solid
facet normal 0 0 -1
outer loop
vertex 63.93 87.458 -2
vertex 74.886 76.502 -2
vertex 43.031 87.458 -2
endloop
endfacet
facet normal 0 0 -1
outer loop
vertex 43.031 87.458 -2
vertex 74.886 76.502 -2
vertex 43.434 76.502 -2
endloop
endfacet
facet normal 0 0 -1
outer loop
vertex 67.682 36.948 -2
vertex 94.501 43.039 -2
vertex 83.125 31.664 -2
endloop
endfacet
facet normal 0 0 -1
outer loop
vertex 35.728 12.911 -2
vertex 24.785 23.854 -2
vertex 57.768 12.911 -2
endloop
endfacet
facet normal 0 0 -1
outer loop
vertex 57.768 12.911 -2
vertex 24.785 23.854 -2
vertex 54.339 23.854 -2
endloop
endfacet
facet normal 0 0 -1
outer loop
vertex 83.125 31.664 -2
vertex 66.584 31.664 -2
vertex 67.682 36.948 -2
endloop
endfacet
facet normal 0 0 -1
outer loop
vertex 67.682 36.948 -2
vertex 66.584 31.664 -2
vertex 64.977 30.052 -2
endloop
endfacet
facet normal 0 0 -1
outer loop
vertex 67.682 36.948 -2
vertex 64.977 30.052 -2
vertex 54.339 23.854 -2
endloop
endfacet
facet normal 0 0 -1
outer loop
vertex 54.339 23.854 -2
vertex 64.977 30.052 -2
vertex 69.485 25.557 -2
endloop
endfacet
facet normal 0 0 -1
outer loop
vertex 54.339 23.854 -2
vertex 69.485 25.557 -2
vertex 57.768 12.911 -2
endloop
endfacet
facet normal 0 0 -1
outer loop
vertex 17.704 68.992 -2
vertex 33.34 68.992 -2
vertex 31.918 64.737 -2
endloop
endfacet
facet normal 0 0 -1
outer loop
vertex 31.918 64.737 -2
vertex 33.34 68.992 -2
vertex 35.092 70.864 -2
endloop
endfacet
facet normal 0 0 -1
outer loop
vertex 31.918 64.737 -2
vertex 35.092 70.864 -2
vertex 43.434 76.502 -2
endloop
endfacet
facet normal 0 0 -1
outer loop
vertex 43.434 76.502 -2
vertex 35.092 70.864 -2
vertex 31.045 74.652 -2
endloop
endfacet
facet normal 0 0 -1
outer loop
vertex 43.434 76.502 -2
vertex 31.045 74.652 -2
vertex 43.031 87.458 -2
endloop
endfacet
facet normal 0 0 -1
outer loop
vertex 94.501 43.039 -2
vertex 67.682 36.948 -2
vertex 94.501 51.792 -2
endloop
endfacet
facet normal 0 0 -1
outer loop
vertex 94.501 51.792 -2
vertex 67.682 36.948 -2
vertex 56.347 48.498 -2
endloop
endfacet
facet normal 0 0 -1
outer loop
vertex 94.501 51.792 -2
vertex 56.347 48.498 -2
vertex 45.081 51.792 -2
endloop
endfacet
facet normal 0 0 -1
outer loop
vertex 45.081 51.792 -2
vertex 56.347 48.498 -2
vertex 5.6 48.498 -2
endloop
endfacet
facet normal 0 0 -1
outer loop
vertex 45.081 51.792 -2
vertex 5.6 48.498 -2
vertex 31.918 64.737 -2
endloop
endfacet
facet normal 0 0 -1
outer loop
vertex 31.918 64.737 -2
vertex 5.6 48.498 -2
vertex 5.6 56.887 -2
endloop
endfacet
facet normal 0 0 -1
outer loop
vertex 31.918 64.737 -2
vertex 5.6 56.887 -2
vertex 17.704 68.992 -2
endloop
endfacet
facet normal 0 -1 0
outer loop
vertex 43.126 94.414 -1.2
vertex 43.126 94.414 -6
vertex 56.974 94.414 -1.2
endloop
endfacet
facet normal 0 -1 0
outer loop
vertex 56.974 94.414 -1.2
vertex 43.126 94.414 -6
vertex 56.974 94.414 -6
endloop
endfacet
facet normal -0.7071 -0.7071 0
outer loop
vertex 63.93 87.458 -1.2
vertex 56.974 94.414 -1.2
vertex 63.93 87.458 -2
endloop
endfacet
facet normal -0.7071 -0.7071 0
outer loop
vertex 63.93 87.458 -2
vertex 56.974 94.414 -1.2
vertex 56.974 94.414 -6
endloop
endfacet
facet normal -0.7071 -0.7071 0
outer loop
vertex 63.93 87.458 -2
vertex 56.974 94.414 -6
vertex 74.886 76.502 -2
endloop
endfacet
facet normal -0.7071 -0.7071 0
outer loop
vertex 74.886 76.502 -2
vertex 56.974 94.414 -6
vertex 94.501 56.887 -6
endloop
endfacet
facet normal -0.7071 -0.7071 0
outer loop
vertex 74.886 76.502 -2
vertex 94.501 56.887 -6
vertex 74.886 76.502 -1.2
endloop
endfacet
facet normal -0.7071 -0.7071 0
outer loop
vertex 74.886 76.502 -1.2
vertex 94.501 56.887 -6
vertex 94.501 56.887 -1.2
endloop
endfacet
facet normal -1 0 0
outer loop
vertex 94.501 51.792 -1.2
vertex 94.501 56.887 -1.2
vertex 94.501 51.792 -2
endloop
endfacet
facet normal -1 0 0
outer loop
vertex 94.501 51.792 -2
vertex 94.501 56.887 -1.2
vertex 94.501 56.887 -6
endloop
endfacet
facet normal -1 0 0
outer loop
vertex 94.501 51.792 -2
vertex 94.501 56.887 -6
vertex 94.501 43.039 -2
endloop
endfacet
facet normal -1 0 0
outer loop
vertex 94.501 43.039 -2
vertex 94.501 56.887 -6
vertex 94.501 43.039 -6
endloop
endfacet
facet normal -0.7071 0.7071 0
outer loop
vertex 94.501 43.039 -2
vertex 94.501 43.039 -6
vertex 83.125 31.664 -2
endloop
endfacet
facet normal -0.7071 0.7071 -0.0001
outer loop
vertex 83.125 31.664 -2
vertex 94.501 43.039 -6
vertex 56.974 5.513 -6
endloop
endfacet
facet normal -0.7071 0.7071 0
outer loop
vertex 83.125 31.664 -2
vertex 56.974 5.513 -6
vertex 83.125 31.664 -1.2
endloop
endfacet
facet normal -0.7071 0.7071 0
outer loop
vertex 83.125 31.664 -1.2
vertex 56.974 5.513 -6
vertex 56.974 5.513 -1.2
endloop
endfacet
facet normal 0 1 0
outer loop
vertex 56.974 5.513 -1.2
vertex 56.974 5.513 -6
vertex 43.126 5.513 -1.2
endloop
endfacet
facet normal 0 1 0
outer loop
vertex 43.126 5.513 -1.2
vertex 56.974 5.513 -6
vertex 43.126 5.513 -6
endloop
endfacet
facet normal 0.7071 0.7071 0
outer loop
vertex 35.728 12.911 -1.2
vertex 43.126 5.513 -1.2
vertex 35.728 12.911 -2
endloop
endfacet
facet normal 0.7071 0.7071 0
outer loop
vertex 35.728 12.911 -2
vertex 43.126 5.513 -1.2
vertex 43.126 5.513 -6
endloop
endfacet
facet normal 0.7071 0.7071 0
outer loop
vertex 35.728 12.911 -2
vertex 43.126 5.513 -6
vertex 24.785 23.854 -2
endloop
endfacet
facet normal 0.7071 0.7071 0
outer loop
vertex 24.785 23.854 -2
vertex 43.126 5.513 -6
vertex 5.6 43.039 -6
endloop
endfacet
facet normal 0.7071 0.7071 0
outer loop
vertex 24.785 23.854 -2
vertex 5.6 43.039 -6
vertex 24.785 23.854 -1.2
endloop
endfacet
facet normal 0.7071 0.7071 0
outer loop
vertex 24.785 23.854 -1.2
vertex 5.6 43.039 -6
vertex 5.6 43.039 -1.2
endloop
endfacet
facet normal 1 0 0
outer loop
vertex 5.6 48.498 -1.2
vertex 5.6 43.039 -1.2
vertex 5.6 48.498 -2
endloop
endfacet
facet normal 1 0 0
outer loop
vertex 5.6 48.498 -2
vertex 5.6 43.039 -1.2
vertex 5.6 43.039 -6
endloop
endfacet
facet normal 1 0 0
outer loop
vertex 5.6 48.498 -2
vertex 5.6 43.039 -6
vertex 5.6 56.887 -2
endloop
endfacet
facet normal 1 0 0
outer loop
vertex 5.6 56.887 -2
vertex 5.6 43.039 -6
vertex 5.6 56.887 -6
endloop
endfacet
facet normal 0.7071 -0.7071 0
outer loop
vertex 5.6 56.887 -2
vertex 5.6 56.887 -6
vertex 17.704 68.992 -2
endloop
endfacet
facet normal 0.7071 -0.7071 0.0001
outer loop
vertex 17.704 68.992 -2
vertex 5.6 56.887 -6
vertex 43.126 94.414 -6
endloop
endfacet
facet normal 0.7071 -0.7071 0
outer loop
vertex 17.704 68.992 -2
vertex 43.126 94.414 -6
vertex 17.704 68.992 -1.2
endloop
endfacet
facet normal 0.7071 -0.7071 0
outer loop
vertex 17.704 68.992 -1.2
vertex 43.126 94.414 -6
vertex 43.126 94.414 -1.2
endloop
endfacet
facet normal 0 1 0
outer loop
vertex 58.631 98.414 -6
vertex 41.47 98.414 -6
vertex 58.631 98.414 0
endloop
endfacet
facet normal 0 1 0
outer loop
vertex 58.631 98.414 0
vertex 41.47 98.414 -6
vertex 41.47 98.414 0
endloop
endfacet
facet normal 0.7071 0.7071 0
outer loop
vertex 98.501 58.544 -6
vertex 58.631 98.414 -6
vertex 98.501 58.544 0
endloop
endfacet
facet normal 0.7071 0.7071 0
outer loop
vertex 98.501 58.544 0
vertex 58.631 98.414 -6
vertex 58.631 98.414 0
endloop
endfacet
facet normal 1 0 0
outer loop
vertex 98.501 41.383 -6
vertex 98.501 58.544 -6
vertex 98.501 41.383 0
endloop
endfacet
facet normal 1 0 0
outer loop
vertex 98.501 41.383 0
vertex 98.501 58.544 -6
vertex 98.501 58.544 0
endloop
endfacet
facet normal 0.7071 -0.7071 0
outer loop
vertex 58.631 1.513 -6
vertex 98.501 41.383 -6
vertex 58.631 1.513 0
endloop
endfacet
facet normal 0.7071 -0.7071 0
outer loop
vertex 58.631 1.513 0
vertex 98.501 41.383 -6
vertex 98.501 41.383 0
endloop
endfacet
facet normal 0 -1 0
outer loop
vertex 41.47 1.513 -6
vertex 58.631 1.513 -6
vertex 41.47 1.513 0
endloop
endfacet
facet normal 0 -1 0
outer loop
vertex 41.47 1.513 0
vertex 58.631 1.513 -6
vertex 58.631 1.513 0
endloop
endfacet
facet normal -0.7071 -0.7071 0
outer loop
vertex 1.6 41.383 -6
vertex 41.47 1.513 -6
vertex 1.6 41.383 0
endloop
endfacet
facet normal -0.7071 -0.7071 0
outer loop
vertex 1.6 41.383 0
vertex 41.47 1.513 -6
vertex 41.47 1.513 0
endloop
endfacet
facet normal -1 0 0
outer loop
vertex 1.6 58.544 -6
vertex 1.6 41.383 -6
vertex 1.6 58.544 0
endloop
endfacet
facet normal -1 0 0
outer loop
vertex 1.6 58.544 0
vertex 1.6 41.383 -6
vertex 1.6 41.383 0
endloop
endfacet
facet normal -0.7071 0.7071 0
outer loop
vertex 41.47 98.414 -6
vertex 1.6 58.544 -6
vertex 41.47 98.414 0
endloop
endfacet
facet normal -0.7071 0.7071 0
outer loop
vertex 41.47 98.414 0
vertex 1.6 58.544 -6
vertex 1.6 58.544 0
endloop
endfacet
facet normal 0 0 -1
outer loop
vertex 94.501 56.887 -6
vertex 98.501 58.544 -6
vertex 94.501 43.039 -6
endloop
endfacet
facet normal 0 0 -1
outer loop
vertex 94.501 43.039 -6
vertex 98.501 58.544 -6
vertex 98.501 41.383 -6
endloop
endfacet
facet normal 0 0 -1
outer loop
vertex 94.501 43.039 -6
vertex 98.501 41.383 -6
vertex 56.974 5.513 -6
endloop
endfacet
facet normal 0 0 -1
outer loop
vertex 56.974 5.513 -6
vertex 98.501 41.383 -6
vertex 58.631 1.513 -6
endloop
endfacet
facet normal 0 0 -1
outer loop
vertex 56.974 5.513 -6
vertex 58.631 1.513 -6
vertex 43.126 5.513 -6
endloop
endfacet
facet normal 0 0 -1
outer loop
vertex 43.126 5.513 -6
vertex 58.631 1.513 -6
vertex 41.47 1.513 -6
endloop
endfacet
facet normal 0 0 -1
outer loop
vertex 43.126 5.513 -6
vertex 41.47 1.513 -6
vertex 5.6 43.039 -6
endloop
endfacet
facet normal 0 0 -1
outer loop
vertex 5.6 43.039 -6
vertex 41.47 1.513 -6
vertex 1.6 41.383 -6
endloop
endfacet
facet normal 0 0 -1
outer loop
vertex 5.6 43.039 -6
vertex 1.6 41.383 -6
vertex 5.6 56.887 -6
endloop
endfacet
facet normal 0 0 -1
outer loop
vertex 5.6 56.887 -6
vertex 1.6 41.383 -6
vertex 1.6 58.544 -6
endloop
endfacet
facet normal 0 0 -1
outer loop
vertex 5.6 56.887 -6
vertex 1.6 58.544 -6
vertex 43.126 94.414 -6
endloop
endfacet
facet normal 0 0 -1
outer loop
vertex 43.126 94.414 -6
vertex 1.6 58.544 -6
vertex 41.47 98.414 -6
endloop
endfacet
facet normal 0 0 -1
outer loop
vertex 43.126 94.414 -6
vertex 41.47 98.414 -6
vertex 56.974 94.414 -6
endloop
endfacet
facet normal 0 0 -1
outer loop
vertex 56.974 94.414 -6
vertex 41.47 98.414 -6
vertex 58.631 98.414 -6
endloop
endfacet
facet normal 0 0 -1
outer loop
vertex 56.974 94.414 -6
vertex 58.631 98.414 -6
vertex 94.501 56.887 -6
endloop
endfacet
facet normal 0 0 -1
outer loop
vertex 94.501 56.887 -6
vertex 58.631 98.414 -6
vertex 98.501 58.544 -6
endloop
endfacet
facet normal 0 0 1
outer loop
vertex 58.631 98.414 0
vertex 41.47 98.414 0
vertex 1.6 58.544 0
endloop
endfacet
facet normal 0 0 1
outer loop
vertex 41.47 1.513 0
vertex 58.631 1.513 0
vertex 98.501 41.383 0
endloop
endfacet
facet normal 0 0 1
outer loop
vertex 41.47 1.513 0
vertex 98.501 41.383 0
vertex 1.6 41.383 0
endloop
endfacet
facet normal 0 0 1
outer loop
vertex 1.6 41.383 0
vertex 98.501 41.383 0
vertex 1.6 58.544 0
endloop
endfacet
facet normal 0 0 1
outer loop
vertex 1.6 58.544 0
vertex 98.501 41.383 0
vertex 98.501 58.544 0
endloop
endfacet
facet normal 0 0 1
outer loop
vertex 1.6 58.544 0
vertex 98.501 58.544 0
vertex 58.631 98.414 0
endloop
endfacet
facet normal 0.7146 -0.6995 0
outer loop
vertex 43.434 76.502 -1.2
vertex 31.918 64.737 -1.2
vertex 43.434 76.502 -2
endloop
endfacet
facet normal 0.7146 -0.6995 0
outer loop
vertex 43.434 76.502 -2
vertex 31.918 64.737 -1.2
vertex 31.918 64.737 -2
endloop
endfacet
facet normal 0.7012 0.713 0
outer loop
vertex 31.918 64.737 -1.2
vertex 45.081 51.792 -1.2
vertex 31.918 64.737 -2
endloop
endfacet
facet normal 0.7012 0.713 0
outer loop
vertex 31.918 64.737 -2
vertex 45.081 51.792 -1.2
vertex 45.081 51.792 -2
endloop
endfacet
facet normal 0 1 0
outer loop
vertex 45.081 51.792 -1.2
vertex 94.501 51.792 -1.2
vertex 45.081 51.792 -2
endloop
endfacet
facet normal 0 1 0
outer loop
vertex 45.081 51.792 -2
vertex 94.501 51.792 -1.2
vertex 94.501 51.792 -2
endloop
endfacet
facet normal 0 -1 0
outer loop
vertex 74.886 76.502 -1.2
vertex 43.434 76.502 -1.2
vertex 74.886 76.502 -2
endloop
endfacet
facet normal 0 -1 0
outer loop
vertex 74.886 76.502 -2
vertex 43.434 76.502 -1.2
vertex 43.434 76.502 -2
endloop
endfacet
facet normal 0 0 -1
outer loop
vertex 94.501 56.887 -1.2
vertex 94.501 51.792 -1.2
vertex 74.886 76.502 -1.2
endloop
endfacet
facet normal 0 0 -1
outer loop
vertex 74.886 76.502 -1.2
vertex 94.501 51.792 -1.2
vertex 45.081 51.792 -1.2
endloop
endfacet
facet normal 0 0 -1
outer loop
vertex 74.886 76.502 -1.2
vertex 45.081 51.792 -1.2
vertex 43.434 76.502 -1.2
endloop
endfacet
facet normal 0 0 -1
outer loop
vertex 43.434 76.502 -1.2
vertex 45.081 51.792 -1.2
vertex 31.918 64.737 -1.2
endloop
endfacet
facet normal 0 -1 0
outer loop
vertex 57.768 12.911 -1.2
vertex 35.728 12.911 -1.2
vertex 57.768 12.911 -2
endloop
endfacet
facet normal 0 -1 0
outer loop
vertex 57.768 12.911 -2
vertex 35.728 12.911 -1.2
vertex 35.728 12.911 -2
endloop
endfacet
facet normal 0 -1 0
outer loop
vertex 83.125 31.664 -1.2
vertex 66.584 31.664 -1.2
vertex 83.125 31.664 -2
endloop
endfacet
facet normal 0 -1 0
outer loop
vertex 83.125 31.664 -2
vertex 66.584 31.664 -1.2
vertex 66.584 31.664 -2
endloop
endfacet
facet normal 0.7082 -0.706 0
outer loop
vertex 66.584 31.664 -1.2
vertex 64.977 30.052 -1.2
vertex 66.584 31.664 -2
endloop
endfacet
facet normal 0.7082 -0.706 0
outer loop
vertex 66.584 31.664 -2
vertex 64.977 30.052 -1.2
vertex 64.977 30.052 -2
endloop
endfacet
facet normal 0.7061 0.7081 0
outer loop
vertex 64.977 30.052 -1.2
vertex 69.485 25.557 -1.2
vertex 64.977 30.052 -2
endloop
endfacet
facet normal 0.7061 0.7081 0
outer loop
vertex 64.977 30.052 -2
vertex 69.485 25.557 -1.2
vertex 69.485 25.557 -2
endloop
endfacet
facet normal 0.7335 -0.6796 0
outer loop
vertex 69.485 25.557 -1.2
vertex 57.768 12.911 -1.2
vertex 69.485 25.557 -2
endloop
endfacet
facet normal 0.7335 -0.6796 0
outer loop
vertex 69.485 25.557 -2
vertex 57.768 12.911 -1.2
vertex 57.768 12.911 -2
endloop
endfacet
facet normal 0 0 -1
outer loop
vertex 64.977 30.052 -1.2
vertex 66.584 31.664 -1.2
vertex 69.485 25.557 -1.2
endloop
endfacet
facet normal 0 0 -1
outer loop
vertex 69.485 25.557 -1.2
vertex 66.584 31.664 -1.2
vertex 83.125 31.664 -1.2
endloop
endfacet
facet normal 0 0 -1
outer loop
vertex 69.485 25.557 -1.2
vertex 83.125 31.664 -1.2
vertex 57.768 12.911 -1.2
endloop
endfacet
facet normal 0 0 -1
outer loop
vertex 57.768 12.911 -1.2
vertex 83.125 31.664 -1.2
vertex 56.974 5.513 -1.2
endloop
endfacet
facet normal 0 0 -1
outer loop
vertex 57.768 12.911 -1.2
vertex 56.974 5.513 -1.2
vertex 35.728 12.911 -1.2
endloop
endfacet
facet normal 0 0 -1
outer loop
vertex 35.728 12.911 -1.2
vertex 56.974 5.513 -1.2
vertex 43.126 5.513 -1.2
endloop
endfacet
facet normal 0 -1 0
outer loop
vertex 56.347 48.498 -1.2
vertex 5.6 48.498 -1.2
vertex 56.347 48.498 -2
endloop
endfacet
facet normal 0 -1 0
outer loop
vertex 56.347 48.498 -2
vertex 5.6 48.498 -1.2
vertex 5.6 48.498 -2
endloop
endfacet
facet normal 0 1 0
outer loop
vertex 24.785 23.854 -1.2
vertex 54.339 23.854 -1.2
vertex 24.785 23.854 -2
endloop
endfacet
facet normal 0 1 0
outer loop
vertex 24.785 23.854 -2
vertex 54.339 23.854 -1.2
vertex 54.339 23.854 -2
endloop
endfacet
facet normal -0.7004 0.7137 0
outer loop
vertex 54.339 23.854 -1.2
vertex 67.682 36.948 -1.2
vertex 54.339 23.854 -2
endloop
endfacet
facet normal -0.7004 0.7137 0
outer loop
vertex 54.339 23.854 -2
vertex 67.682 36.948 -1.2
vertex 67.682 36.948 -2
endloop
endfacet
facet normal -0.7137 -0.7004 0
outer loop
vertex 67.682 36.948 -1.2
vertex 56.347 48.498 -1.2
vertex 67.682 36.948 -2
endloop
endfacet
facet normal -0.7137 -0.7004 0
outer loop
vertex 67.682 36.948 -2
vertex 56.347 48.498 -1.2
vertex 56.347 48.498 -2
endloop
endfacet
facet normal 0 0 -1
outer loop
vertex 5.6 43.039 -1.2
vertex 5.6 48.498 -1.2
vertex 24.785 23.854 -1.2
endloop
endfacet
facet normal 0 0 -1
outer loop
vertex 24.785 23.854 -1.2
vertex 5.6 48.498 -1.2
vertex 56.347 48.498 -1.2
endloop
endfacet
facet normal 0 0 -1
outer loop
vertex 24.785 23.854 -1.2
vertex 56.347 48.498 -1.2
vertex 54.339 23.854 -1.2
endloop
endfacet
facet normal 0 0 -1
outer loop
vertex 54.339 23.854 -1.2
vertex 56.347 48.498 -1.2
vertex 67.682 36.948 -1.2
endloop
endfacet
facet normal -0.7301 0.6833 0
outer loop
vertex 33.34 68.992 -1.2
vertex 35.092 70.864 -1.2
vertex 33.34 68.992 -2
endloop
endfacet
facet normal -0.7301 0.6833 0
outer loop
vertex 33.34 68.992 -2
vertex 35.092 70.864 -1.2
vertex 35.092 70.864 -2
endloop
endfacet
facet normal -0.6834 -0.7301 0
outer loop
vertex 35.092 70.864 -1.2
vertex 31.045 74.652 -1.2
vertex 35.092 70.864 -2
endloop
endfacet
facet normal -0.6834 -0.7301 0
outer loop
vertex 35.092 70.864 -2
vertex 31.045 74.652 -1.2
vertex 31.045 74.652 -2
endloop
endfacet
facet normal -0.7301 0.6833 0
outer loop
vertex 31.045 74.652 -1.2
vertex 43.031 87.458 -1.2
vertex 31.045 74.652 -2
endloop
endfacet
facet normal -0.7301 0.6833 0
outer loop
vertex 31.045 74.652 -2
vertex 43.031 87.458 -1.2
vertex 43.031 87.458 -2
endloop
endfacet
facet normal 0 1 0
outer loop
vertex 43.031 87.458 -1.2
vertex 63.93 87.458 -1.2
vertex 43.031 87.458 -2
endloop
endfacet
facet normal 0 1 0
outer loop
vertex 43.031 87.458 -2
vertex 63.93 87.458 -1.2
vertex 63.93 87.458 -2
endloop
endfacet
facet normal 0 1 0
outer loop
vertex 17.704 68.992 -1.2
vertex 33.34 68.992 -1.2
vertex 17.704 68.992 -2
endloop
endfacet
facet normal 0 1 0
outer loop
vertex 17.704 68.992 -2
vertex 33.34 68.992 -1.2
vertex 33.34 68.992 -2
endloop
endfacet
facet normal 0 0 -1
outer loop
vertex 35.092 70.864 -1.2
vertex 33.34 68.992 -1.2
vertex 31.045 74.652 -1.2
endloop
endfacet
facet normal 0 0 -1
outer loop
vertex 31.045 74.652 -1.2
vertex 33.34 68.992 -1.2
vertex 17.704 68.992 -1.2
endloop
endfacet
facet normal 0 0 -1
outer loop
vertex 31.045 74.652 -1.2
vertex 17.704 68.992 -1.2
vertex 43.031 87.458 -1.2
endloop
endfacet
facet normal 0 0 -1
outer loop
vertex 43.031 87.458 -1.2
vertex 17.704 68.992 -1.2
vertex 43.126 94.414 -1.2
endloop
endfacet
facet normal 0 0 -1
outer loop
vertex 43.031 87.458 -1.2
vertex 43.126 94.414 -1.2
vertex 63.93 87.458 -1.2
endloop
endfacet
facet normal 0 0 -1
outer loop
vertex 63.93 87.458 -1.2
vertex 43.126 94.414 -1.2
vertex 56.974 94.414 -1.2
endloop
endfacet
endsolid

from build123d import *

# Parameters (mm, degrees)
EXTRUDE_1_DEPTH     = 6
EXTRUDE_2_DEPTH     = 2
CUT_EXTRUDE_1_DEPTH = 0.8


with BuildPart() as part:
    # 草图1 → 凸台-拉伸1 (new body)
    with BuildSketch(Plane.XY):
        Polygon((41.469502686, 98.413945938), (1.599546065, 58.543989317), (1.599546065, 41.382573206), (41.469502686, 1.512616585), (58.630918797, 1.512616585), (98.500875418, 41.382573206), (98.500875418, 58.543989317), (58.630918797, 98.413945938), align=None)
        Polygon((43.126356936, 94.413945938), (5.599546065, 56.887135068), (5.599546065, 43.039427456), (43.126356936, 5.512616585), (56.974064547, 5.512616585), (94.500875418, 43.039427456), (94.500875418, 56.887135068), (56.974064547, 94.413945938), align=None, mode=Mode.SUBTRACT)
    extrude(amount=-EXTRUDE_1_DEPTH)

    # 草图3 → 凸台-拉伸2 (add)
    with BuildSketch(Plane.XY):
        Polygon((43.126356936, 94.413945938), (5.599546065, 56.887135068), (5.599546065, 43.039427456), (43.126356936, 5.512616585), (56.974064547, 5.512616585), (94.500875418, 43.039427456), (94.500875418, 56.887135068), (56.974064547, 94.413945938), align=None)
    extrude(amount=-EXTRUDE_2_DEPTH)

    # 草图4 → 切除-拉伸1 (cut)
    with BuildSketch(Plane(origin=(0, 0, -2), x_dir=(-1, 0, 0), z_dir=(0, 0, -1))):
        Polygon((-94.500875418, 56.887135068), (-94.500875418, 51.791965689), (-45.081351484, 51.791965689), (-31.918303141, 64.736865353), (-43.433956755, 76.502141218), (-74.885869267, 76.502141218), align=None)
        Polygon((-56.974064547, 94.413945938), (-63.930144523, 87.457865962), (-43.030556381, 87.457865962), (-31.044508785, 74.652044034), (-35.091931028, 70.863720572), (-33.339917404, 68.991879642), (-17.704290639, 68.991879642), (-43.126356936, 94.413945938), align=None)
        Polygon((-54.339287077, 23.853509746), (-24.785463775, 23.853509746), (-5.599546065, 43.039427456), (-5.599546065, 48.49814838), (-56.346633262, 48.49814838), (-67.681954242, 36.947928988), align=None)
        Polygon((-66.584102119, 31.663565611), (-83.125013573, 31.663565611), (-56.974064547, 5.512616585), (-43.126356936, 5.512616585), (-35.72811274, 12.910860781), (-57.7675839, 12.910860781), (-69.485376795, 25.556943884), (-64.977324173, 30.052221354), align=None)
    extrude(amount=-CUT_EXTRUDE_1_DEPTH, mode=Mode.SUBTRACT)


solid = part.part
